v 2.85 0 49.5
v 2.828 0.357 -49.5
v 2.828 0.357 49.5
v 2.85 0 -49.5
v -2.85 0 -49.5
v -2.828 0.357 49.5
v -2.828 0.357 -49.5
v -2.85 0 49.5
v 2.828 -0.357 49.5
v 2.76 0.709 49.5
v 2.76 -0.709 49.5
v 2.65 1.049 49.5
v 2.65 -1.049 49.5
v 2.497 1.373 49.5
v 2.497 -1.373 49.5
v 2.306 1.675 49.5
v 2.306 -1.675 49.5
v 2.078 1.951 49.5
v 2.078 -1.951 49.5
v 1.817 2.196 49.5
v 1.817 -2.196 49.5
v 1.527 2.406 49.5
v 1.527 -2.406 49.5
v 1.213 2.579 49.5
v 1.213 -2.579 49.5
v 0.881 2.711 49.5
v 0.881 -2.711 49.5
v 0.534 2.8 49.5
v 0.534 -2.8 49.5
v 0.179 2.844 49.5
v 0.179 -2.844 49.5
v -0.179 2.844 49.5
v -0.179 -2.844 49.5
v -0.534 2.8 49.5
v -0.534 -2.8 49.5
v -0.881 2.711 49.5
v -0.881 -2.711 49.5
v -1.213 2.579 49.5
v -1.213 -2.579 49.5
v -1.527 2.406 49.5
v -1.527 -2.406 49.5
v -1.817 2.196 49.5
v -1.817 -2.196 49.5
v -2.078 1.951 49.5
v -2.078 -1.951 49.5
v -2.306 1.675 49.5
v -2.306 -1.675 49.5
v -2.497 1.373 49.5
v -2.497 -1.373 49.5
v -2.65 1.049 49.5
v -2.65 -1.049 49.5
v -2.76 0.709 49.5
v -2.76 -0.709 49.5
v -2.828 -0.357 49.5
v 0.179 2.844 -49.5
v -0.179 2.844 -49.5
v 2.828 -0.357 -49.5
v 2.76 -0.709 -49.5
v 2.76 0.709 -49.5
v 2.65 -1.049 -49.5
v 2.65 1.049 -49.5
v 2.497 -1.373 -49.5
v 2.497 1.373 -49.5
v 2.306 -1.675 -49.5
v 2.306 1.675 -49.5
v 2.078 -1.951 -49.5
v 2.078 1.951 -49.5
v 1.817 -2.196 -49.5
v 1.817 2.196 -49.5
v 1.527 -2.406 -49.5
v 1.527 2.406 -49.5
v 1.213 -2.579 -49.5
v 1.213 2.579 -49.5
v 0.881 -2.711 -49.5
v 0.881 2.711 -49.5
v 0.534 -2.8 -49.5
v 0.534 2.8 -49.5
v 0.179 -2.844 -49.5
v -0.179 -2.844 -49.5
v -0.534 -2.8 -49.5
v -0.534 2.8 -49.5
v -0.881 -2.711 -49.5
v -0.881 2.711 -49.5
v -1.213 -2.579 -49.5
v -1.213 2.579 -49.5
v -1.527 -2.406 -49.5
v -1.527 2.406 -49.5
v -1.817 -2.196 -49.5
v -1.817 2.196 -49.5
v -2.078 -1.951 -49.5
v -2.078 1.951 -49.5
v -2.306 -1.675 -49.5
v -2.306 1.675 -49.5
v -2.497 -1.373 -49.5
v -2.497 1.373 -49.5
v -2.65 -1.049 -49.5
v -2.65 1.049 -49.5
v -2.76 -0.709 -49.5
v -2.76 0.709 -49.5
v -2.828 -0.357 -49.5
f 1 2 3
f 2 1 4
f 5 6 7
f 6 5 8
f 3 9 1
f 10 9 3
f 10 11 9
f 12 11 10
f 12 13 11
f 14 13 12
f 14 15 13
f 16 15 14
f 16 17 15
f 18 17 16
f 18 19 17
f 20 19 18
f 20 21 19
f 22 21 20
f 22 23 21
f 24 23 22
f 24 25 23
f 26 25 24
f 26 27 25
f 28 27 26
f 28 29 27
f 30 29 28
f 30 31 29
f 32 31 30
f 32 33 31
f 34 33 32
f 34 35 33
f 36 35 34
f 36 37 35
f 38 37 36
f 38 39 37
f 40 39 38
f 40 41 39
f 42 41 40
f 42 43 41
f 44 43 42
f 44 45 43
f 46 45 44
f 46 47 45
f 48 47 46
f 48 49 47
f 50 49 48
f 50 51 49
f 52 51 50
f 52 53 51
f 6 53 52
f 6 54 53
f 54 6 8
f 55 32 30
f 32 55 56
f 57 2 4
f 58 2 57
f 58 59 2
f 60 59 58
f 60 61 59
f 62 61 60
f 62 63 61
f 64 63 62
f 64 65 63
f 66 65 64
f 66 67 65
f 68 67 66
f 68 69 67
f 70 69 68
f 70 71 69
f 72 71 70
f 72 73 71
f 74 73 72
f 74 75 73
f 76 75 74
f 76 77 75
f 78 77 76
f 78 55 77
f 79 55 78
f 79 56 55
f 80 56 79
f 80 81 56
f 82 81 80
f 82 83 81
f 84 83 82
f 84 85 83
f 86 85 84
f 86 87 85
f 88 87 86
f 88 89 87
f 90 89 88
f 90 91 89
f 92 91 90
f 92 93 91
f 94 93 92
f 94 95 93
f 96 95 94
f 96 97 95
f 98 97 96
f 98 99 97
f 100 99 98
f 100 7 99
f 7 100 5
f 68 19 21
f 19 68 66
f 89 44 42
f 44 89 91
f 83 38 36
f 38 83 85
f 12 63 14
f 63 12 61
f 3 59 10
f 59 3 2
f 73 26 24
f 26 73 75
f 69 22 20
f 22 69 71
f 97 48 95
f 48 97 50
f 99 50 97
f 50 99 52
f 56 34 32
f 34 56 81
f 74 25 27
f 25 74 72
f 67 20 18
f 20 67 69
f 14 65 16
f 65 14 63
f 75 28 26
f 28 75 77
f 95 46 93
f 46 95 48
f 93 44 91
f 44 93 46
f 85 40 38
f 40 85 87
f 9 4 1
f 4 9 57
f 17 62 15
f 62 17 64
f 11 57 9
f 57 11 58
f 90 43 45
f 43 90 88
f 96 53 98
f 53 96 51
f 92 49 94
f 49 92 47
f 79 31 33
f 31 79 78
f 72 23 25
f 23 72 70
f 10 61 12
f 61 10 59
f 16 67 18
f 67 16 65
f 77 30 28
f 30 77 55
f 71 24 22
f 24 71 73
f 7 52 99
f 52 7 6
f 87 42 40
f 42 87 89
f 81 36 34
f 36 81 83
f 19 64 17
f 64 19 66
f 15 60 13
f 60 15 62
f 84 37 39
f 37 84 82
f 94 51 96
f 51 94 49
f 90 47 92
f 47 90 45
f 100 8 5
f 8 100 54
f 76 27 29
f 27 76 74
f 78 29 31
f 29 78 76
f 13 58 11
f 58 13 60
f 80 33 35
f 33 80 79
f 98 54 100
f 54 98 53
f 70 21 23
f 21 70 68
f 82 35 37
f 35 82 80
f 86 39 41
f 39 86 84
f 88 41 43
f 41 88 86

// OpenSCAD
$fn = 50;


difference() {
	union() {
		translate(v = [0, 0, -49.5000000000]) {
			cylinder(h = 99, r = 2.8500000000);
		}
	}
	union() {
		translate(v = [0, 0, -100.0000000000]) {
			cylinder(h = 200, r = 0);
		}
	}
}
